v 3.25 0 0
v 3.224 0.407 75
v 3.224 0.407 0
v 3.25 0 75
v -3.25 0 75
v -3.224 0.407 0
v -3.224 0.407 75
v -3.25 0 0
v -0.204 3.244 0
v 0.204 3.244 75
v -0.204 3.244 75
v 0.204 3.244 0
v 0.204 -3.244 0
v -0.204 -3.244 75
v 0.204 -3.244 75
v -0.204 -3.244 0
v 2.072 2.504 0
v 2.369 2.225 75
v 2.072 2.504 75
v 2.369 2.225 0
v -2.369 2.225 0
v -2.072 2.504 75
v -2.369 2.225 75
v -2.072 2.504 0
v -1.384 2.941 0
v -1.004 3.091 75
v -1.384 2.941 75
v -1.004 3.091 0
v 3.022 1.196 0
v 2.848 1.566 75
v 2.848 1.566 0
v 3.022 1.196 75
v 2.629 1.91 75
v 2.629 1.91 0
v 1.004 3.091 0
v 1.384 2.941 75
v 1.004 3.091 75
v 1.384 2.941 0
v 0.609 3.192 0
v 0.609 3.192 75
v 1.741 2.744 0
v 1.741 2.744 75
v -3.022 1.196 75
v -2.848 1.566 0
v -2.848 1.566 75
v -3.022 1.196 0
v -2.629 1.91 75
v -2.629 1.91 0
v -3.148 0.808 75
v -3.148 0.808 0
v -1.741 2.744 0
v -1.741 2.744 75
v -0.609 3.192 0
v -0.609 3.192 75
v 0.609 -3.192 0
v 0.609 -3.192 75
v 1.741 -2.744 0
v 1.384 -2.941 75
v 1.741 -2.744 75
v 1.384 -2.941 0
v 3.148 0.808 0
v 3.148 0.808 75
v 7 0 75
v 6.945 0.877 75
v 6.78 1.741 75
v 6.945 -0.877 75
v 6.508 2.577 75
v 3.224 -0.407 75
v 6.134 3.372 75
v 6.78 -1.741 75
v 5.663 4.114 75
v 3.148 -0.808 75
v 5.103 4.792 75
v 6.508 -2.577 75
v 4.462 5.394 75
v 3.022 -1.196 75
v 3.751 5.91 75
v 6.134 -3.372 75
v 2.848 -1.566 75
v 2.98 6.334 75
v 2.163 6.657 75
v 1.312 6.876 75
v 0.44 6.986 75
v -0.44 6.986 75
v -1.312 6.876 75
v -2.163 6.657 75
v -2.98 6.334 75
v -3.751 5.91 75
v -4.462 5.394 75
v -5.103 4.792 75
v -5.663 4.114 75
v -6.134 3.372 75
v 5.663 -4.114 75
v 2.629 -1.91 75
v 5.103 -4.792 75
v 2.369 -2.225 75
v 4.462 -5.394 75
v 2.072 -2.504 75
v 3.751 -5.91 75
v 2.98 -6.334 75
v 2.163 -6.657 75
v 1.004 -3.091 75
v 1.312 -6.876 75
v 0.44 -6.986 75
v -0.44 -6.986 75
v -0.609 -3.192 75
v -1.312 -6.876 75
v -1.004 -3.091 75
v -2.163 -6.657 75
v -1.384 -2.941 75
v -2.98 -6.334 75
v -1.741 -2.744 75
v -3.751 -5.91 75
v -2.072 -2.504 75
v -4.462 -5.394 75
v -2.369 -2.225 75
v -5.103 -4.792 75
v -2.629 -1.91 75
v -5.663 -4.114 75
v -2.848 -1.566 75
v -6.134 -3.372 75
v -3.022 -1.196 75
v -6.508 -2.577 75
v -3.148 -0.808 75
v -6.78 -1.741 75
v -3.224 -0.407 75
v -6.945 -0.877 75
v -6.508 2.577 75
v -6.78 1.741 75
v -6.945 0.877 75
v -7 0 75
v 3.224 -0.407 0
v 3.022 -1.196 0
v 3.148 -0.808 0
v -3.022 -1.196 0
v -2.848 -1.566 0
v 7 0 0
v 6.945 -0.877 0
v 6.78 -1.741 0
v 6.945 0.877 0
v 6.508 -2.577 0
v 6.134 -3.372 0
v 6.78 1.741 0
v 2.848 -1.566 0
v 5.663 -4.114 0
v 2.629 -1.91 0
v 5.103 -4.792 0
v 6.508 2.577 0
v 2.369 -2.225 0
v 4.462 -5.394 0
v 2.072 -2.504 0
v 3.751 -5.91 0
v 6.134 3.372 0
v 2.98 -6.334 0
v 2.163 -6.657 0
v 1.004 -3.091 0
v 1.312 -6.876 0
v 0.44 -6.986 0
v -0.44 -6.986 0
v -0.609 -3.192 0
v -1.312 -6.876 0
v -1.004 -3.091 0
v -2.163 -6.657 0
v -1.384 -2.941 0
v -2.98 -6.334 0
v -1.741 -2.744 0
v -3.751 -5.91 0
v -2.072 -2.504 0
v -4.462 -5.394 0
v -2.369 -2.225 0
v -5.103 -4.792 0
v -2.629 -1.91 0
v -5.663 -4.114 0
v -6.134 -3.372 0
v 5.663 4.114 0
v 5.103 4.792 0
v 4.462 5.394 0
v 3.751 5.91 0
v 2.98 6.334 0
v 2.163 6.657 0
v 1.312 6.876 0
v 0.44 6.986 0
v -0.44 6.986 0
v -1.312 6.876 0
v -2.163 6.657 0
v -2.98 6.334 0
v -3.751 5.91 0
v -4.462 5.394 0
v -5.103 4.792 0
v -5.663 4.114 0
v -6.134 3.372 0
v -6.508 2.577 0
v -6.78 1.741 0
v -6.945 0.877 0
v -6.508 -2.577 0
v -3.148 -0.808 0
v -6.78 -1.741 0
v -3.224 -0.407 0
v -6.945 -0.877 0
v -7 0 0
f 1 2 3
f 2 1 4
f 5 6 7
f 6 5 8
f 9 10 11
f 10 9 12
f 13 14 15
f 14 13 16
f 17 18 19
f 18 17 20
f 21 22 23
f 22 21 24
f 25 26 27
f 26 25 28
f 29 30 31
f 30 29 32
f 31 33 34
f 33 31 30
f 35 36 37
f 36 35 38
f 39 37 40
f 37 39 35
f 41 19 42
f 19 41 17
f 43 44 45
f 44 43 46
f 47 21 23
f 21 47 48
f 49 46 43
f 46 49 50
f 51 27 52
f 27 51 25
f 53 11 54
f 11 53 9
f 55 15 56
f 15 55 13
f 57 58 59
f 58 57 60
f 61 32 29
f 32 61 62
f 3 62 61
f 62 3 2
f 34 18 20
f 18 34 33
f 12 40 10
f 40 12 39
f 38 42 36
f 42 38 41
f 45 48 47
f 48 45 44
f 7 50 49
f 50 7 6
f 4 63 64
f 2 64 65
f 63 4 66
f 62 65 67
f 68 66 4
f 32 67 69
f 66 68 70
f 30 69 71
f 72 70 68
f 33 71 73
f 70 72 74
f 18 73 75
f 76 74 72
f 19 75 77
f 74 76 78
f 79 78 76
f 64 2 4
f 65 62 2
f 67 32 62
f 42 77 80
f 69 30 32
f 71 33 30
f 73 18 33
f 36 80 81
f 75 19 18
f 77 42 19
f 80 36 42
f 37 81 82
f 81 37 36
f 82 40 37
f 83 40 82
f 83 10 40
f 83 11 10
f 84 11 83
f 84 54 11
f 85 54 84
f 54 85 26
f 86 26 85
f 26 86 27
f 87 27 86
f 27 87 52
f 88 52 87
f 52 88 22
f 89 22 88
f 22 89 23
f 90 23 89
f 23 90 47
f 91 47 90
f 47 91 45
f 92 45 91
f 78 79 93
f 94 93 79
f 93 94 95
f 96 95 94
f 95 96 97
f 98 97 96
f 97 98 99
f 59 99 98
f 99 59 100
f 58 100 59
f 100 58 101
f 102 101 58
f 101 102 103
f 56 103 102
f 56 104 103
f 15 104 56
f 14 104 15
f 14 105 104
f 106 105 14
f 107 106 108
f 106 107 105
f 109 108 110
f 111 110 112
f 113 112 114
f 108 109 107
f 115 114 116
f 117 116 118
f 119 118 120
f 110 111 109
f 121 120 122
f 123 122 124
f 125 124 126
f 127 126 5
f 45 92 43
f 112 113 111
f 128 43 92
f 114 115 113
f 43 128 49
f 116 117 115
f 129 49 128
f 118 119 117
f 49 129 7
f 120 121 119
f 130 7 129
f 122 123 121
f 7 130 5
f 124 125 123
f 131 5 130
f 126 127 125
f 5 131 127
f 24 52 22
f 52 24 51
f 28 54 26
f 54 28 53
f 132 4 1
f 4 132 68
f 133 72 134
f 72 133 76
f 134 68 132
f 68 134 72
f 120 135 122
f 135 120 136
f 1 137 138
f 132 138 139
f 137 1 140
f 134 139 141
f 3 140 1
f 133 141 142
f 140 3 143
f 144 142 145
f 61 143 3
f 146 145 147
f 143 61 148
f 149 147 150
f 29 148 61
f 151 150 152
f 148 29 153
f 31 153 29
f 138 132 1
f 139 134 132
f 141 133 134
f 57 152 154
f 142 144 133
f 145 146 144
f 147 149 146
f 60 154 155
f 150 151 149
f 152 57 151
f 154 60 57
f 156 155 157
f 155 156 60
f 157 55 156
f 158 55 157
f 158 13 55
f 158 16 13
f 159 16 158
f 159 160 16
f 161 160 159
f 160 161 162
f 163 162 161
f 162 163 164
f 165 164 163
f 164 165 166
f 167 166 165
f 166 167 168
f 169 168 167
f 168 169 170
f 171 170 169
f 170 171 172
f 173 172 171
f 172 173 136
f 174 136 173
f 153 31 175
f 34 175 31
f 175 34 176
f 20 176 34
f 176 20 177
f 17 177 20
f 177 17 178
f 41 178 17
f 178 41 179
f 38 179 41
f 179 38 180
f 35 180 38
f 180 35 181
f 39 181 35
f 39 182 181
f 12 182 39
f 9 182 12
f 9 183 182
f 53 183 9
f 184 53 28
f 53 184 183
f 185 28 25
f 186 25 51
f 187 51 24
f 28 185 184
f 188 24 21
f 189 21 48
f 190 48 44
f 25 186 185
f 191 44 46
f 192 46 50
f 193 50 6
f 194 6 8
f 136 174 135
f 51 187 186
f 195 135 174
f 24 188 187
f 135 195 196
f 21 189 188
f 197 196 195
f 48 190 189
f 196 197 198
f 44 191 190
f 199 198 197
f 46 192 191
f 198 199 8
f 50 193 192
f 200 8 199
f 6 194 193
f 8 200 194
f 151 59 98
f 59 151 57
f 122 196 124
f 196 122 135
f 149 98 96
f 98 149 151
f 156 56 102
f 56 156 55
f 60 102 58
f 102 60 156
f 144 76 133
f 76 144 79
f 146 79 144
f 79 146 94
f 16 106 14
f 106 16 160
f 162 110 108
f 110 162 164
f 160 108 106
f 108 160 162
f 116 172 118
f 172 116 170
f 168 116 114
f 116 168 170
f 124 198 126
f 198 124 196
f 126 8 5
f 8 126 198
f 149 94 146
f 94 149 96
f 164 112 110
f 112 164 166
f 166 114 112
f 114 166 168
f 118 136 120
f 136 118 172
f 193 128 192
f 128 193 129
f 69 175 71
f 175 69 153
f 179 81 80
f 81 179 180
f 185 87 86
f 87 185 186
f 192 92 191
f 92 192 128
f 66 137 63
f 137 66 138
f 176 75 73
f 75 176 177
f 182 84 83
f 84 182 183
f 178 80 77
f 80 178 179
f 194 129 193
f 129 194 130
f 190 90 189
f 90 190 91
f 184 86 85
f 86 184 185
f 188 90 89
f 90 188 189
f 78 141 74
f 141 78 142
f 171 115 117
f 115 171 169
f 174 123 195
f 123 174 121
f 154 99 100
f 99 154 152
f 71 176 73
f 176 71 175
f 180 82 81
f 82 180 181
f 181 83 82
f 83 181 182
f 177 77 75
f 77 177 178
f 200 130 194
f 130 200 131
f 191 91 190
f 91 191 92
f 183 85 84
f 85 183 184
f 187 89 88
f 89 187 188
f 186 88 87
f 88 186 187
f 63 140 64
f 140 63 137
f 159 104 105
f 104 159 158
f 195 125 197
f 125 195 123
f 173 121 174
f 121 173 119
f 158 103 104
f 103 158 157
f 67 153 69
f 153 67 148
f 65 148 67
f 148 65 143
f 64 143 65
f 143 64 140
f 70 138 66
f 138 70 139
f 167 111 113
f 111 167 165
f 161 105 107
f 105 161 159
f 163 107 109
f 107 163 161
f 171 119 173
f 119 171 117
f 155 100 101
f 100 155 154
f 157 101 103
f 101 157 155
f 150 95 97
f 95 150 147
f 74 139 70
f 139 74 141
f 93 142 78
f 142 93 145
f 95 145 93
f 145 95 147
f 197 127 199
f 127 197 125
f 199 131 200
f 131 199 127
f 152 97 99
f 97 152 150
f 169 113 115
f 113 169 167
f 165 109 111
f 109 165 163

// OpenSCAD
$fn = 50;


difference() {
	union() {
		cylinder(h = 75, r = 7.0000000000);
	}
	union() {
		translate(v = [0.0000000000, 0.0000000000, -100.0000000000]) {
			cylinder(h = 200, r = 3.2500000000);
		}
		translate(v = [0.0000000000, 0.0000000000, -100.0000000000]) {
			cylinder(h = 200, r = 3.2500000000);
		}
		translate(v = [0.0000000000, 0.0000000000, -100.0000000000]) {
			cylinder(h = 200, r = 3.2500000000);
		}
		translate(v = [0.0000000000, 0.0000000000, -100.0000000000]) {
			cylinder(h = 200, r = 3.2500000000);
		}
	}
}
